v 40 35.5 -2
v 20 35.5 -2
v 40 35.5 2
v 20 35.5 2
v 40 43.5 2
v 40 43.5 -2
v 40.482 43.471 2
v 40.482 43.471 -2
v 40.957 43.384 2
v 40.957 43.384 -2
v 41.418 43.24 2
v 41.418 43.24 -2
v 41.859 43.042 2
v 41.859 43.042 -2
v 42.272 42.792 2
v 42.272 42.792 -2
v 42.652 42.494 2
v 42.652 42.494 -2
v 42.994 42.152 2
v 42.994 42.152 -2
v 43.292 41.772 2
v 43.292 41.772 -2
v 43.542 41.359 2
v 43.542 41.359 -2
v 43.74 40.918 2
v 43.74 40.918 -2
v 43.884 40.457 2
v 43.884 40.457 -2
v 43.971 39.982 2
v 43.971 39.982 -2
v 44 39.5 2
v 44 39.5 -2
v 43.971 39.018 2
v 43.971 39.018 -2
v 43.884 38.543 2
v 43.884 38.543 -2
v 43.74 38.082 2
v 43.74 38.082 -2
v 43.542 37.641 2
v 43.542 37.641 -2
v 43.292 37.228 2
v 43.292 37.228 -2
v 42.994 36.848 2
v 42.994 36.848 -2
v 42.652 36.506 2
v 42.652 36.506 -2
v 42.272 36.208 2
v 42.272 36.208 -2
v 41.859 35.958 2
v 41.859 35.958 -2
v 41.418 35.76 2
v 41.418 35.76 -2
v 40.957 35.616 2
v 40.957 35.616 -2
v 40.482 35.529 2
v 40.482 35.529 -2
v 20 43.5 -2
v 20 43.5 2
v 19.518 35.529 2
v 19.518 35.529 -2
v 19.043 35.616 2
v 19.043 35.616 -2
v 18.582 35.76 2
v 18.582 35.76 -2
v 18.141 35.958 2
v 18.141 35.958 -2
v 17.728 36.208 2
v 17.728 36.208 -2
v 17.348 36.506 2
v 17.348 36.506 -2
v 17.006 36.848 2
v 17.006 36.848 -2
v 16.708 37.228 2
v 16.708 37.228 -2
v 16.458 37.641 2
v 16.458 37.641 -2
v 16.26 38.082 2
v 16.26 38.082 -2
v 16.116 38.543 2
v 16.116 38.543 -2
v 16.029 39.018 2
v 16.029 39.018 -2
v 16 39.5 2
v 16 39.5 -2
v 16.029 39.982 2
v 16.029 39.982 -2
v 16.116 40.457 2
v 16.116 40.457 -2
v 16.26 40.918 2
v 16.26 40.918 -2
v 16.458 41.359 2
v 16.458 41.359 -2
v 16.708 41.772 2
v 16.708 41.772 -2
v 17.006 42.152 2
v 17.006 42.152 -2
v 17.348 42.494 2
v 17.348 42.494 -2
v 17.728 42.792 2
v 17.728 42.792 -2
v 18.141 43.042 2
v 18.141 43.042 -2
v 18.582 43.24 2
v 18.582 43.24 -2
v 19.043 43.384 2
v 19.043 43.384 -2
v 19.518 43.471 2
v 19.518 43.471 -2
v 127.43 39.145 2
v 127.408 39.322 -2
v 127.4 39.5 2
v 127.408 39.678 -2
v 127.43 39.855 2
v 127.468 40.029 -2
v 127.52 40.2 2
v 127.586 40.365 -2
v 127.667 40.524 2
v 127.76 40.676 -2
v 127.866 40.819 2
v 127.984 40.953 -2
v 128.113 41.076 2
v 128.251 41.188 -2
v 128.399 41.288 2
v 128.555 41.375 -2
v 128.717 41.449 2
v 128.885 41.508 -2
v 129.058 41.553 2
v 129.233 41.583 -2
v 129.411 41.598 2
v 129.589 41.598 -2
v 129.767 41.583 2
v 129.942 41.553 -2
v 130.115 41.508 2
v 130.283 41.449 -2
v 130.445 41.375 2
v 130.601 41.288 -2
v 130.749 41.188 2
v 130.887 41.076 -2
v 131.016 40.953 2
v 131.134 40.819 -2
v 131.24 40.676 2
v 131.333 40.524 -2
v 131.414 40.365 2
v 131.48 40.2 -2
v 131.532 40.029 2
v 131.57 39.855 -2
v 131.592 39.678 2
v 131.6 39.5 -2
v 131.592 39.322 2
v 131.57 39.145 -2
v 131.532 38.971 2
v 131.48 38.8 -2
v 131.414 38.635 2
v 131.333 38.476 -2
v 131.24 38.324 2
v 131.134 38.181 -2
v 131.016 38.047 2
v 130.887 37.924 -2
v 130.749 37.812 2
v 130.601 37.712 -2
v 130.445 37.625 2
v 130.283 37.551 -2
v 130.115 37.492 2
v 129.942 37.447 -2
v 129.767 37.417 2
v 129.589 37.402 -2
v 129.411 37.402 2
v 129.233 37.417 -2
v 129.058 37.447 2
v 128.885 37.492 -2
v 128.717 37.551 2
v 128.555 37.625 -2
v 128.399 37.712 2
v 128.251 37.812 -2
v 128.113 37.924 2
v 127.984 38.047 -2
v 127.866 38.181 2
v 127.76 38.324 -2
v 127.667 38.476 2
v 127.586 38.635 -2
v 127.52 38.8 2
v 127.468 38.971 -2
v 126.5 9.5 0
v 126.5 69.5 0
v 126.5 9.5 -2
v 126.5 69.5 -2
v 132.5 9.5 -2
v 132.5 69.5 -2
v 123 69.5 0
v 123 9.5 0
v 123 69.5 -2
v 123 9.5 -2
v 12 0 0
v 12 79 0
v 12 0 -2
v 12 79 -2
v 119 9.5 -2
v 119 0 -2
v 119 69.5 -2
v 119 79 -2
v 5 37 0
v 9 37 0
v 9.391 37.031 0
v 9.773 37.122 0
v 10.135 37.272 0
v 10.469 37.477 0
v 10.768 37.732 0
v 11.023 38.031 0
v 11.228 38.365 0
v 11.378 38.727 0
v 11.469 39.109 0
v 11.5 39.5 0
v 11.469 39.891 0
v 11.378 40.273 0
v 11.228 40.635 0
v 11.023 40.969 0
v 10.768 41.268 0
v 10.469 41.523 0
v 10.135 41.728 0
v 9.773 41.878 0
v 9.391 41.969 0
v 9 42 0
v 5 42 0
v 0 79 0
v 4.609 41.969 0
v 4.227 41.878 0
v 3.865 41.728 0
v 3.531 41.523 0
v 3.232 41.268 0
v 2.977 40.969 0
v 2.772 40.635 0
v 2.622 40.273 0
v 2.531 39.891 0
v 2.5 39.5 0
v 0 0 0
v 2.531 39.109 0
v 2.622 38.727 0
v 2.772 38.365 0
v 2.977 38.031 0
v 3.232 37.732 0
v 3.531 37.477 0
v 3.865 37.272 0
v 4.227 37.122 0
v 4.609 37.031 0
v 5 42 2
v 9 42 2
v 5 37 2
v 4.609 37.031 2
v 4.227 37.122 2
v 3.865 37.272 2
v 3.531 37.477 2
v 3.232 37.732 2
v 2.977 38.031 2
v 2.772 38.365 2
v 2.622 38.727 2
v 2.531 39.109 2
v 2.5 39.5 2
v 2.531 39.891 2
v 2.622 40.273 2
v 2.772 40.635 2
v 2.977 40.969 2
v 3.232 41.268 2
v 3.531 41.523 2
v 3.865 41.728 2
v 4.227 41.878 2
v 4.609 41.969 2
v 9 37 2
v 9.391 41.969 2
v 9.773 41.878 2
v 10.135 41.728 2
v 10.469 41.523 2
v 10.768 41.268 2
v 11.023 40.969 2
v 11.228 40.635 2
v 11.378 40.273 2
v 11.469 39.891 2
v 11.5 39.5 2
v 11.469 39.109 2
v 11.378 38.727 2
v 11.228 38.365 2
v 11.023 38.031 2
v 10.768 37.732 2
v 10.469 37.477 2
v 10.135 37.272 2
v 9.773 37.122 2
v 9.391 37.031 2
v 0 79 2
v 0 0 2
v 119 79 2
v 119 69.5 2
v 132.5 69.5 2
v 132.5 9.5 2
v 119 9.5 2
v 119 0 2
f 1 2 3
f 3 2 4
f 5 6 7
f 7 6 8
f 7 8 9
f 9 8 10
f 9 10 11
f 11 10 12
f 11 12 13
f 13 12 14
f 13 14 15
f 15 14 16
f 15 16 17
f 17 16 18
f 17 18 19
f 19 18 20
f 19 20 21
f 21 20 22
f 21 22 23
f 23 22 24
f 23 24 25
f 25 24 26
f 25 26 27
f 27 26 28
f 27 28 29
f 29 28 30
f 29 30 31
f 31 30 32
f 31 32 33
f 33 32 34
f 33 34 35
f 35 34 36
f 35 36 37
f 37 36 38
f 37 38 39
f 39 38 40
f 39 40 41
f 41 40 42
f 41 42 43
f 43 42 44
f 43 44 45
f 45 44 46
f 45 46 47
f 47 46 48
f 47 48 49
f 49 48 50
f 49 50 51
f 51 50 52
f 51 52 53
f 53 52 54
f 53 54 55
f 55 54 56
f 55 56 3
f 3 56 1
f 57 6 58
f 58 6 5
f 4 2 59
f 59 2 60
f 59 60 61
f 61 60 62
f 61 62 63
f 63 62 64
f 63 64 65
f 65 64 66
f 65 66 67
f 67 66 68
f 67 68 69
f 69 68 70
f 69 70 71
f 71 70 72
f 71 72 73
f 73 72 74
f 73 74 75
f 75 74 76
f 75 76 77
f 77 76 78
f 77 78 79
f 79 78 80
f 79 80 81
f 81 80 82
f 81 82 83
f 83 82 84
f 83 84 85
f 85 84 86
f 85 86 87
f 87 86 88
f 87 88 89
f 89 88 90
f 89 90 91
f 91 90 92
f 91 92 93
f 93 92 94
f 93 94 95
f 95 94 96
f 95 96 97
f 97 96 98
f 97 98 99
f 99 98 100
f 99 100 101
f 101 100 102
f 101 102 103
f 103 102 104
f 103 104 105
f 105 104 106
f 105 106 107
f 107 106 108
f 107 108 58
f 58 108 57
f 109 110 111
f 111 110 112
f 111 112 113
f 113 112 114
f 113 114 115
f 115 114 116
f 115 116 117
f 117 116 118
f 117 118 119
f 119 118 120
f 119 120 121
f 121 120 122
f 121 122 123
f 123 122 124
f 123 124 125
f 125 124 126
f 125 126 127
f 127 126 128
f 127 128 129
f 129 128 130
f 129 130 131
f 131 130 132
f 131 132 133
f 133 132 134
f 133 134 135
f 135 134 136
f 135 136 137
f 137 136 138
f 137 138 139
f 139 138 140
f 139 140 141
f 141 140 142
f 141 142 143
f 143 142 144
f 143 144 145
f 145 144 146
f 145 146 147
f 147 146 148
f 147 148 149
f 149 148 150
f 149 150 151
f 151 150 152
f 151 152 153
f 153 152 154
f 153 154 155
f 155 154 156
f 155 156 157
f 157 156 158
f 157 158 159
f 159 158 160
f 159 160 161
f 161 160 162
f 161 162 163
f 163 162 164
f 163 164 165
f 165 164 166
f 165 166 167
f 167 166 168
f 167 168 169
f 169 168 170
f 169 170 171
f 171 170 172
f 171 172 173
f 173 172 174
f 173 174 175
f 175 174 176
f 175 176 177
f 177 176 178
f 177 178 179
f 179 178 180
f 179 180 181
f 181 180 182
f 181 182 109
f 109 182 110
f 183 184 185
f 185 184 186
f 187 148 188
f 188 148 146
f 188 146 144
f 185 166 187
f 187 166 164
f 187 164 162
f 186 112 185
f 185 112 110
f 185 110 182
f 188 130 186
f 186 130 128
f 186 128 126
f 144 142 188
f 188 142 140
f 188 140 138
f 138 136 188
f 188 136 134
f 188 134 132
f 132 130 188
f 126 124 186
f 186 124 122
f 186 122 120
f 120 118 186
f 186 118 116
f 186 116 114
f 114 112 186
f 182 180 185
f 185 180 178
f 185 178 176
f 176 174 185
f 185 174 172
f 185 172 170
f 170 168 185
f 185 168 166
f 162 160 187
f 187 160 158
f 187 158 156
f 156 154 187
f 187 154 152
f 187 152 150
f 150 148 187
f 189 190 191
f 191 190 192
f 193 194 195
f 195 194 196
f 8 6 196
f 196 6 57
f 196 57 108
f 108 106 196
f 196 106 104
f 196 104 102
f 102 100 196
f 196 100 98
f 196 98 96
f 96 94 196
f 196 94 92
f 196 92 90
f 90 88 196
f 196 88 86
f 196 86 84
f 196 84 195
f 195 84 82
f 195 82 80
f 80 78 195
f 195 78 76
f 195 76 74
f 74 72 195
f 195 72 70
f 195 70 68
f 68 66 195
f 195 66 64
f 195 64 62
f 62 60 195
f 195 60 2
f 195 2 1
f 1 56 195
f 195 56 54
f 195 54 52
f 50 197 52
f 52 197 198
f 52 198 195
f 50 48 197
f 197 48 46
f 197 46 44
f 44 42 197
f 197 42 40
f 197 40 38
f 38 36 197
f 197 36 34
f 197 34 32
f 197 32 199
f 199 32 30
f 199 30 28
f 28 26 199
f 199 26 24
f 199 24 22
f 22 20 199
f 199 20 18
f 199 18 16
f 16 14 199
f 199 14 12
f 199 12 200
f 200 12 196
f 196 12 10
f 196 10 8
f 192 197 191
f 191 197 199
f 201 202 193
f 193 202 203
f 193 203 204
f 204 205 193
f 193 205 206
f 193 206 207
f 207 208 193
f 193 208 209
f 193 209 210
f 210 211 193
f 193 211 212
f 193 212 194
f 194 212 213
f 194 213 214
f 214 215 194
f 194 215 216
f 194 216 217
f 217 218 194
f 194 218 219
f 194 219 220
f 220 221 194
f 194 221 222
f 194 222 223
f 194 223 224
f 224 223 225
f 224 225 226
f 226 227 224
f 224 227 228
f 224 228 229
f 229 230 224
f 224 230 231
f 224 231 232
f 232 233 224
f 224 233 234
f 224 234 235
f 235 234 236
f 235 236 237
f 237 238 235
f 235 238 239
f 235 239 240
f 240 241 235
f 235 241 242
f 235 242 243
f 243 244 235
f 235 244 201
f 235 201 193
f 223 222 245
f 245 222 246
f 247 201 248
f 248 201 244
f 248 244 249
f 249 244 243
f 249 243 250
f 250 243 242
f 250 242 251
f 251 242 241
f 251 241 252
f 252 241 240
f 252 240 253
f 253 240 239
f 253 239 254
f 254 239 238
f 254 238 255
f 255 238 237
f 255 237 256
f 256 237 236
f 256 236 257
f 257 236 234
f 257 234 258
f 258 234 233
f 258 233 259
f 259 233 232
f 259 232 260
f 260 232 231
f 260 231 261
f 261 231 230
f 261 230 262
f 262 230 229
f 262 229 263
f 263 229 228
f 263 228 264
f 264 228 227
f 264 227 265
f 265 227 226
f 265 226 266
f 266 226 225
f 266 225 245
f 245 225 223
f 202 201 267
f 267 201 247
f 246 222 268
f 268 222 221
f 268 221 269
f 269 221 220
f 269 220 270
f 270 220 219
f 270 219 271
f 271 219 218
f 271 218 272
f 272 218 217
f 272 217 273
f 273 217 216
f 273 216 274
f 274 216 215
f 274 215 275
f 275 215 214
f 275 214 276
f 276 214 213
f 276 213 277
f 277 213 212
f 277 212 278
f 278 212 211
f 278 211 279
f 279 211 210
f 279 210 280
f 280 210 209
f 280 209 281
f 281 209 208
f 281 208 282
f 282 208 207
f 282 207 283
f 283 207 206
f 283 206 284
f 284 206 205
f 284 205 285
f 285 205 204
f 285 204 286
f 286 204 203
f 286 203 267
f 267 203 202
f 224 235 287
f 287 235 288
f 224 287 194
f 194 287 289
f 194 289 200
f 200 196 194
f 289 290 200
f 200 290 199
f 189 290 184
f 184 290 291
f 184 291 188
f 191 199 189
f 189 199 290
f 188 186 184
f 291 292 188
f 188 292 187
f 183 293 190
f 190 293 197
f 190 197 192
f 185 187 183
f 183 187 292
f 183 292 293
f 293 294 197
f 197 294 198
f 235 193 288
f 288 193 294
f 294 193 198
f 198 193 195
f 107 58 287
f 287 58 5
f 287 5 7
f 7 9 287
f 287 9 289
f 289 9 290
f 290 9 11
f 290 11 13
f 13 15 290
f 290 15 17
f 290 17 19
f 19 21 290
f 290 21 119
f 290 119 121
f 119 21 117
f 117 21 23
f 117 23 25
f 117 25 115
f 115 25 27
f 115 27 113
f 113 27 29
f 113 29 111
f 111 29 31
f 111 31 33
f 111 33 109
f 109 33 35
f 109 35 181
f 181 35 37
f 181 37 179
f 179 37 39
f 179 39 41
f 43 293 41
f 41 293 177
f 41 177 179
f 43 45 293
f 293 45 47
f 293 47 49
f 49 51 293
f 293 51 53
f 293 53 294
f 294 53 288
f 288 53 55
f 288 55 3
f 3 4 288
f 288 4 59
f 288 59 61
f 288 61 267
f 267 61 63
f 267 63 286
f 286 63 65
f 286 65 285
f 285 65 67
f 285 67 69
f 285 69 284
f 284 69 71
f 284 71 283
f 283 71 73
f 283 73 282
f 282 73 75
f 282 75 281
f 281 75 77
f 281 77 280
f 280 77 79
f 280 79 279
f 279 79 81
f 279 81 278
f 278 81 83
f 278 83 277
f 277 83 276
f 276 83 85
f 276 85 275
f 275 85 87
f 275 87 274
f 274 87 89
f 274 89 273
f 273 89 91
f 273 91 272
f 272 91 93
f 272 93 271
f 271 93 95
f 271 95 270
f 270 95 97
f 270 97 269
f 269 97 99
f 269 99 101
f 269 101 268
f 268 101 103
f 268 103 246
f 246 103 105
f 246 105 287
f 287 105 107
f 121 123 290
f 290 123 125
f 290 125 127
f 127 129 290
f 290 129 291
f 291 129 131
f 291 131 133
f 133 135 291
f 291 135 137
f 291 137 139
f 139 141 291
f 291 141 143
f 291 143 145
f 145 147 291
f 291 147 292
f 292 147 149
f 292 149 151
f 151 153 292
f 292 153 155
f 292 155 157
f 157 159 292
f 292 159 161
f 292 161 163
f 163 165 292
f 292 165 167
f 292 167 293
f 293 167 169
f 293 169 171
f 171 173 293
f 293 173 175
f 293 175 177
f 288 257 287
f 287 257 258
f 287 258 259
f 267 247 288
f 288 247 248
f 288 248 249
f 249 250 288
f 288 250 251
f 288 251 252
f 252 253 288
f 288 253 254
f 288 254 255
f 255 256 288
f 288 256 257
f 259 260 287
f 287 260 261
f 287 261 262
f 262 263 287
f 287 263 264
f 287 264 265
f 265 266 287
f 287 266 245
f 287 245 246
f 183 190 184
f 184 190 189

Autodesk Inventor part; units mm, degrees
ref_plane "YZ Plane" through (0, 0, 0) normal (1, 0, 0) x (0, 1, 0)
ref_plane "XZ Plane" through (0, 0, 0) normal (0, 1, 0) x (-1, 0, 0)
ref_plane "XY Plane" through (0, 0, 0) normal (0, 0, 1) x (1, 0, 0)
sketch "Sketch1" plane through (0, 0, 0) normal (0, 0, 1) x (1, 0, 0)
  line L0 (0, 0) -> (123, 0)
  line L1 (123, 0) -> (123, 79)
  line L2 (123, 79) -> (0, 79)
  line L3 (0, 79) -> (0, 0)
  line L4 (12, 79) -> (12, 0)
  line L5 (123, 69.5) -> (126.5, 69.5)
  line L6 (126.5, 69.5) -> (126.5, 9.5)
  line L7 (126.5, 9.5) -> (123, 9.5)
  line L8 (123, 9.5) -> (123, 69.5)
  line L9 (126.5, 9.5) -> (132.5, 9.5)
  line L10 (132.5, 9.5) -> (132.5, 69.5)
  line L11 (132.5, 69.5) -> (126.5, 69.5)
  line L12 (126.5, 69.5) -> (126.5, 9.5)
  line L13 (123, 69.5) -> (119, 69.5)
  line L14 (119, 69.5) -> (119, 79)
  line L15 (119, 79) -> (123, 79)
  line L16 (123, 79) -> (123, 69.5)
  line L17 (123, 9.5) -> (119, 9.5)
  line L18 (119, 9.5) -> (119, 0)
  line L19 (119, 0) -> (123, 0)
  line L20 (123, 0) -> (123, 9.5)
  circle A0 centre (129.5, 39.5) radius 2.1
  line L21 (9, 39.5) -> (5, 39.5) construction
  line L22 (9, 42) -> (5, 42)
  line L23 (5, 37) -> (9, 37)
  arc A1 (9, 37) -> (9, 42) centre (9, 39.5) ccw
  arc A2 (5, 42) -> (5, 37) centre (5, 39.5) ccw
  point P0 (7, 39.5)
  dimension "d0" = 123
  dimension "d1" = 79
  dimension "d2" = 111
  dimension "d3" = 3.5
  dimension "d4" = 6
  dimension "d5" = 60
  dimension "d6" = 9.5
  dimension "d7" = 4
  dimension "d8" = 4
  dimension "d9" = 4.2
  dimension "d10" = 3
  dimension "d11" = 30
  dimension "d20" = 5
  dimension "d21" = 3
  dimension "d22" = 4
  dimension "d23" = 39.5
extrude "Extrusion1" add sketch "Sketch1" along normal blind 2 contours L3 L2 L4 L0 | L4 L2 L14 L13 L1 L17 L18 L0 | L1 L5 L6 L7 | L6 L11 L10 L9 | A0
extrude "Extrusion3" add sketch "Sketch1" against normal blind 2 contours L4 L2 L14 L13 L1 L17 L18 L0 | L6 L11 L10 L9
sketch "Sketch2" plane through (0, 0, 2) normal (0, 0, 1) x (1, 0, 0)
  circle A0 centre (60, 39.5) radius 34
  line L0 (119, 79) -> (0, 79) projected
  line L1 (0, 79) -> (0, 0) projected
  line L2 (59, 52.5) -> (64, 52.5)
  line L3 (64, 52.5) -> (64, 47.5)
  line L4 (64, 47.5) -> (59, 47.5)
  line L5 (59, 47.5) -> (59, 52.5)
  line L6 (59, 31.5) -> (64, 31.5)
  line L7 (64, 31.5) -> (64, 26.5)
  line L8 (64, 26.5) -> (59, 26.5)
  line L9 (59, 26.5) -> (59, 31.5)
  circle A1 centre (33, 39.5) radius 1.5
  circle A2 centre (33, 39.5) radius 4
  line L10 (35, 42.9641) -> (35, 36.0359)
  line L11 (33, 41) -> (35, 41)
  line L12 (33, 38) -> (35, 38)
  circle A3 centre (33, 39.5) radius 5
  line L13 (35, 42.9641) -> (35, 44.0826)
  line L14 (35, 36.0359) -> (35, 34.9174)
  line L15 (35, 42.9641) -> (49, 42.9641)
  line L16 (49, 42.9641) -> (49, 36.0359)
  line L17 (49, 36.0359) -> (35, 36.0359)
  line L18 (35, 36.0359) -> (35, 42.9641)
  dimension "d24" = 68
  dimension "d25" = 39.5
  dimension "d26" = 60
  dimension "d27" = 16
  dimension "d28" = 5
  dimension "d29" = 5
  dimension "d30" = 8
  dimension "d31" = 5
  dimension "d32" = 31
  dimension "d33" = 27
  dimension "d34" = 3
  dimension "d35" = 8
  dimension "d36" = 64
  dimension "d37" = 2
  dimension "d38" = 10
  dimension "d51" = 16
  dimension "d52" = 6.9282
extrude "Extrusion4" [suppressed]
sketch "Sketch3" plane through (0, 0, 5.7) normal (0, 0, 1) x (1, 0, 0)
  line L0 (59, 52.5) -> (64, 52.5) projected
  line L1 (59, 52.5) -> (65.1, 52.5)
  line L2 (65.1, 52.5) -> (65.1, 47.5)
  line L3 (65.1, 47.5) -> (59, 47.5)
  line L4 (59, 47.5) -> (59, 52.5)
  line L5 (59, 47.5) -> (64, 47.5) projected
  line L6 (59, 31.5) -> (64, 31.5) projected
  line L7 (59, 31.5) -> (65.1, 31.5)
  line L8 (65.1, 31.5) -> (65.1, 26.5)
  line L9 (65.1, 26.5) -> (59, 26.5)
  line L10 (59, 26.5) -> (59, 31.5)
  line L11 (59, 26.5) -> (64, 26.5) projected
  line L12 (64, 47.5) -> (64, 52.5) projected
  line L13 (64, 26.5) -> (64, 31.5) projected
  point P0 (0, 0)
  point P1 (61.5, 47.5)
  point P2 (61.5, 26.5)
  dimension "d41" = 1.1
  dimension "d42" = 1.1
extrude "Extrusion5" [suppressed]
fillet "Fillet1" [suppressed]
extrude "Extrusion6" [suppressed]
sketch "Sketch4" plane through (0, 0, 6.5) normal (0, 0, 1) x (1, 0, 0)
  line L0 (35, 42.9641) -> (35, 36.0359) projected
  line L1 (33, 41) -> (35, 41) projected
  circle A0 centre (33, 39.5) radius 1.5 projected
  line L2 (33, 38) -> (35, 38) projected
  arc A1 (35, 42.9641) -> (35, 36.0359) centre (33, 39.5) ccw projected
  point P0 (0, 0)
extrude "Extrusion7" [suppressed]
fillet "Fillet2" [suppressed]
extrude "Extrusion8" [suppressed]
fillet "Fillet3" [suppressed]
sketch "Sketch5" plane through (0, 0, 2) normal (0, 0, 1) x (1, 0, 0)
  point P0 (0, 0)
extrude "Extrusion9" cut sketch "Sketch1" along normal through all both and the other way through all contours A0
sketch "Sketch6" plane through (0, 0, 2) normal (0, 0, 1) x (1, 0, 0)
  line L0 (7, 39.5) -> (129.5, 39.5) construction
  line L1 (20, 39.5) -> (40, 39.5) construction
  line L2 (20, 35.5) -> (40, 35.5)
  line L3 (40, 43.5) -> (20, 43.5)
  arc A0 (20, 43.5) -> (20, 35.5) centre (20, 39.5) ccw
  arc A1 (40, 35.5) -> (40, 43.5) centre (40, 39.5) ccw
  line L4 (0, 79) -> (0, 0) projected
  point P0 (30, 39.5)
  dimension "d58" = 8
  dimension "d59" = 20
  dimension "d60" = 20
extrude "Extrusion10" cut sketch "Sketch6" against normal through all
equation "\"d6\" = -0.5 * d5 + 0.5 * d1"
equation "\"d10\" = 0.5 * d4"
equation "\"d11\" = 0.5 * d5"
equation "\"d23\" = 0.5 * d1"
equation "\"d25\" = d23"
equation "\"d29\" = d28"
equation "\"d30\" = 0.5 * d27"
properties part number "gps_cover_flat_only"
